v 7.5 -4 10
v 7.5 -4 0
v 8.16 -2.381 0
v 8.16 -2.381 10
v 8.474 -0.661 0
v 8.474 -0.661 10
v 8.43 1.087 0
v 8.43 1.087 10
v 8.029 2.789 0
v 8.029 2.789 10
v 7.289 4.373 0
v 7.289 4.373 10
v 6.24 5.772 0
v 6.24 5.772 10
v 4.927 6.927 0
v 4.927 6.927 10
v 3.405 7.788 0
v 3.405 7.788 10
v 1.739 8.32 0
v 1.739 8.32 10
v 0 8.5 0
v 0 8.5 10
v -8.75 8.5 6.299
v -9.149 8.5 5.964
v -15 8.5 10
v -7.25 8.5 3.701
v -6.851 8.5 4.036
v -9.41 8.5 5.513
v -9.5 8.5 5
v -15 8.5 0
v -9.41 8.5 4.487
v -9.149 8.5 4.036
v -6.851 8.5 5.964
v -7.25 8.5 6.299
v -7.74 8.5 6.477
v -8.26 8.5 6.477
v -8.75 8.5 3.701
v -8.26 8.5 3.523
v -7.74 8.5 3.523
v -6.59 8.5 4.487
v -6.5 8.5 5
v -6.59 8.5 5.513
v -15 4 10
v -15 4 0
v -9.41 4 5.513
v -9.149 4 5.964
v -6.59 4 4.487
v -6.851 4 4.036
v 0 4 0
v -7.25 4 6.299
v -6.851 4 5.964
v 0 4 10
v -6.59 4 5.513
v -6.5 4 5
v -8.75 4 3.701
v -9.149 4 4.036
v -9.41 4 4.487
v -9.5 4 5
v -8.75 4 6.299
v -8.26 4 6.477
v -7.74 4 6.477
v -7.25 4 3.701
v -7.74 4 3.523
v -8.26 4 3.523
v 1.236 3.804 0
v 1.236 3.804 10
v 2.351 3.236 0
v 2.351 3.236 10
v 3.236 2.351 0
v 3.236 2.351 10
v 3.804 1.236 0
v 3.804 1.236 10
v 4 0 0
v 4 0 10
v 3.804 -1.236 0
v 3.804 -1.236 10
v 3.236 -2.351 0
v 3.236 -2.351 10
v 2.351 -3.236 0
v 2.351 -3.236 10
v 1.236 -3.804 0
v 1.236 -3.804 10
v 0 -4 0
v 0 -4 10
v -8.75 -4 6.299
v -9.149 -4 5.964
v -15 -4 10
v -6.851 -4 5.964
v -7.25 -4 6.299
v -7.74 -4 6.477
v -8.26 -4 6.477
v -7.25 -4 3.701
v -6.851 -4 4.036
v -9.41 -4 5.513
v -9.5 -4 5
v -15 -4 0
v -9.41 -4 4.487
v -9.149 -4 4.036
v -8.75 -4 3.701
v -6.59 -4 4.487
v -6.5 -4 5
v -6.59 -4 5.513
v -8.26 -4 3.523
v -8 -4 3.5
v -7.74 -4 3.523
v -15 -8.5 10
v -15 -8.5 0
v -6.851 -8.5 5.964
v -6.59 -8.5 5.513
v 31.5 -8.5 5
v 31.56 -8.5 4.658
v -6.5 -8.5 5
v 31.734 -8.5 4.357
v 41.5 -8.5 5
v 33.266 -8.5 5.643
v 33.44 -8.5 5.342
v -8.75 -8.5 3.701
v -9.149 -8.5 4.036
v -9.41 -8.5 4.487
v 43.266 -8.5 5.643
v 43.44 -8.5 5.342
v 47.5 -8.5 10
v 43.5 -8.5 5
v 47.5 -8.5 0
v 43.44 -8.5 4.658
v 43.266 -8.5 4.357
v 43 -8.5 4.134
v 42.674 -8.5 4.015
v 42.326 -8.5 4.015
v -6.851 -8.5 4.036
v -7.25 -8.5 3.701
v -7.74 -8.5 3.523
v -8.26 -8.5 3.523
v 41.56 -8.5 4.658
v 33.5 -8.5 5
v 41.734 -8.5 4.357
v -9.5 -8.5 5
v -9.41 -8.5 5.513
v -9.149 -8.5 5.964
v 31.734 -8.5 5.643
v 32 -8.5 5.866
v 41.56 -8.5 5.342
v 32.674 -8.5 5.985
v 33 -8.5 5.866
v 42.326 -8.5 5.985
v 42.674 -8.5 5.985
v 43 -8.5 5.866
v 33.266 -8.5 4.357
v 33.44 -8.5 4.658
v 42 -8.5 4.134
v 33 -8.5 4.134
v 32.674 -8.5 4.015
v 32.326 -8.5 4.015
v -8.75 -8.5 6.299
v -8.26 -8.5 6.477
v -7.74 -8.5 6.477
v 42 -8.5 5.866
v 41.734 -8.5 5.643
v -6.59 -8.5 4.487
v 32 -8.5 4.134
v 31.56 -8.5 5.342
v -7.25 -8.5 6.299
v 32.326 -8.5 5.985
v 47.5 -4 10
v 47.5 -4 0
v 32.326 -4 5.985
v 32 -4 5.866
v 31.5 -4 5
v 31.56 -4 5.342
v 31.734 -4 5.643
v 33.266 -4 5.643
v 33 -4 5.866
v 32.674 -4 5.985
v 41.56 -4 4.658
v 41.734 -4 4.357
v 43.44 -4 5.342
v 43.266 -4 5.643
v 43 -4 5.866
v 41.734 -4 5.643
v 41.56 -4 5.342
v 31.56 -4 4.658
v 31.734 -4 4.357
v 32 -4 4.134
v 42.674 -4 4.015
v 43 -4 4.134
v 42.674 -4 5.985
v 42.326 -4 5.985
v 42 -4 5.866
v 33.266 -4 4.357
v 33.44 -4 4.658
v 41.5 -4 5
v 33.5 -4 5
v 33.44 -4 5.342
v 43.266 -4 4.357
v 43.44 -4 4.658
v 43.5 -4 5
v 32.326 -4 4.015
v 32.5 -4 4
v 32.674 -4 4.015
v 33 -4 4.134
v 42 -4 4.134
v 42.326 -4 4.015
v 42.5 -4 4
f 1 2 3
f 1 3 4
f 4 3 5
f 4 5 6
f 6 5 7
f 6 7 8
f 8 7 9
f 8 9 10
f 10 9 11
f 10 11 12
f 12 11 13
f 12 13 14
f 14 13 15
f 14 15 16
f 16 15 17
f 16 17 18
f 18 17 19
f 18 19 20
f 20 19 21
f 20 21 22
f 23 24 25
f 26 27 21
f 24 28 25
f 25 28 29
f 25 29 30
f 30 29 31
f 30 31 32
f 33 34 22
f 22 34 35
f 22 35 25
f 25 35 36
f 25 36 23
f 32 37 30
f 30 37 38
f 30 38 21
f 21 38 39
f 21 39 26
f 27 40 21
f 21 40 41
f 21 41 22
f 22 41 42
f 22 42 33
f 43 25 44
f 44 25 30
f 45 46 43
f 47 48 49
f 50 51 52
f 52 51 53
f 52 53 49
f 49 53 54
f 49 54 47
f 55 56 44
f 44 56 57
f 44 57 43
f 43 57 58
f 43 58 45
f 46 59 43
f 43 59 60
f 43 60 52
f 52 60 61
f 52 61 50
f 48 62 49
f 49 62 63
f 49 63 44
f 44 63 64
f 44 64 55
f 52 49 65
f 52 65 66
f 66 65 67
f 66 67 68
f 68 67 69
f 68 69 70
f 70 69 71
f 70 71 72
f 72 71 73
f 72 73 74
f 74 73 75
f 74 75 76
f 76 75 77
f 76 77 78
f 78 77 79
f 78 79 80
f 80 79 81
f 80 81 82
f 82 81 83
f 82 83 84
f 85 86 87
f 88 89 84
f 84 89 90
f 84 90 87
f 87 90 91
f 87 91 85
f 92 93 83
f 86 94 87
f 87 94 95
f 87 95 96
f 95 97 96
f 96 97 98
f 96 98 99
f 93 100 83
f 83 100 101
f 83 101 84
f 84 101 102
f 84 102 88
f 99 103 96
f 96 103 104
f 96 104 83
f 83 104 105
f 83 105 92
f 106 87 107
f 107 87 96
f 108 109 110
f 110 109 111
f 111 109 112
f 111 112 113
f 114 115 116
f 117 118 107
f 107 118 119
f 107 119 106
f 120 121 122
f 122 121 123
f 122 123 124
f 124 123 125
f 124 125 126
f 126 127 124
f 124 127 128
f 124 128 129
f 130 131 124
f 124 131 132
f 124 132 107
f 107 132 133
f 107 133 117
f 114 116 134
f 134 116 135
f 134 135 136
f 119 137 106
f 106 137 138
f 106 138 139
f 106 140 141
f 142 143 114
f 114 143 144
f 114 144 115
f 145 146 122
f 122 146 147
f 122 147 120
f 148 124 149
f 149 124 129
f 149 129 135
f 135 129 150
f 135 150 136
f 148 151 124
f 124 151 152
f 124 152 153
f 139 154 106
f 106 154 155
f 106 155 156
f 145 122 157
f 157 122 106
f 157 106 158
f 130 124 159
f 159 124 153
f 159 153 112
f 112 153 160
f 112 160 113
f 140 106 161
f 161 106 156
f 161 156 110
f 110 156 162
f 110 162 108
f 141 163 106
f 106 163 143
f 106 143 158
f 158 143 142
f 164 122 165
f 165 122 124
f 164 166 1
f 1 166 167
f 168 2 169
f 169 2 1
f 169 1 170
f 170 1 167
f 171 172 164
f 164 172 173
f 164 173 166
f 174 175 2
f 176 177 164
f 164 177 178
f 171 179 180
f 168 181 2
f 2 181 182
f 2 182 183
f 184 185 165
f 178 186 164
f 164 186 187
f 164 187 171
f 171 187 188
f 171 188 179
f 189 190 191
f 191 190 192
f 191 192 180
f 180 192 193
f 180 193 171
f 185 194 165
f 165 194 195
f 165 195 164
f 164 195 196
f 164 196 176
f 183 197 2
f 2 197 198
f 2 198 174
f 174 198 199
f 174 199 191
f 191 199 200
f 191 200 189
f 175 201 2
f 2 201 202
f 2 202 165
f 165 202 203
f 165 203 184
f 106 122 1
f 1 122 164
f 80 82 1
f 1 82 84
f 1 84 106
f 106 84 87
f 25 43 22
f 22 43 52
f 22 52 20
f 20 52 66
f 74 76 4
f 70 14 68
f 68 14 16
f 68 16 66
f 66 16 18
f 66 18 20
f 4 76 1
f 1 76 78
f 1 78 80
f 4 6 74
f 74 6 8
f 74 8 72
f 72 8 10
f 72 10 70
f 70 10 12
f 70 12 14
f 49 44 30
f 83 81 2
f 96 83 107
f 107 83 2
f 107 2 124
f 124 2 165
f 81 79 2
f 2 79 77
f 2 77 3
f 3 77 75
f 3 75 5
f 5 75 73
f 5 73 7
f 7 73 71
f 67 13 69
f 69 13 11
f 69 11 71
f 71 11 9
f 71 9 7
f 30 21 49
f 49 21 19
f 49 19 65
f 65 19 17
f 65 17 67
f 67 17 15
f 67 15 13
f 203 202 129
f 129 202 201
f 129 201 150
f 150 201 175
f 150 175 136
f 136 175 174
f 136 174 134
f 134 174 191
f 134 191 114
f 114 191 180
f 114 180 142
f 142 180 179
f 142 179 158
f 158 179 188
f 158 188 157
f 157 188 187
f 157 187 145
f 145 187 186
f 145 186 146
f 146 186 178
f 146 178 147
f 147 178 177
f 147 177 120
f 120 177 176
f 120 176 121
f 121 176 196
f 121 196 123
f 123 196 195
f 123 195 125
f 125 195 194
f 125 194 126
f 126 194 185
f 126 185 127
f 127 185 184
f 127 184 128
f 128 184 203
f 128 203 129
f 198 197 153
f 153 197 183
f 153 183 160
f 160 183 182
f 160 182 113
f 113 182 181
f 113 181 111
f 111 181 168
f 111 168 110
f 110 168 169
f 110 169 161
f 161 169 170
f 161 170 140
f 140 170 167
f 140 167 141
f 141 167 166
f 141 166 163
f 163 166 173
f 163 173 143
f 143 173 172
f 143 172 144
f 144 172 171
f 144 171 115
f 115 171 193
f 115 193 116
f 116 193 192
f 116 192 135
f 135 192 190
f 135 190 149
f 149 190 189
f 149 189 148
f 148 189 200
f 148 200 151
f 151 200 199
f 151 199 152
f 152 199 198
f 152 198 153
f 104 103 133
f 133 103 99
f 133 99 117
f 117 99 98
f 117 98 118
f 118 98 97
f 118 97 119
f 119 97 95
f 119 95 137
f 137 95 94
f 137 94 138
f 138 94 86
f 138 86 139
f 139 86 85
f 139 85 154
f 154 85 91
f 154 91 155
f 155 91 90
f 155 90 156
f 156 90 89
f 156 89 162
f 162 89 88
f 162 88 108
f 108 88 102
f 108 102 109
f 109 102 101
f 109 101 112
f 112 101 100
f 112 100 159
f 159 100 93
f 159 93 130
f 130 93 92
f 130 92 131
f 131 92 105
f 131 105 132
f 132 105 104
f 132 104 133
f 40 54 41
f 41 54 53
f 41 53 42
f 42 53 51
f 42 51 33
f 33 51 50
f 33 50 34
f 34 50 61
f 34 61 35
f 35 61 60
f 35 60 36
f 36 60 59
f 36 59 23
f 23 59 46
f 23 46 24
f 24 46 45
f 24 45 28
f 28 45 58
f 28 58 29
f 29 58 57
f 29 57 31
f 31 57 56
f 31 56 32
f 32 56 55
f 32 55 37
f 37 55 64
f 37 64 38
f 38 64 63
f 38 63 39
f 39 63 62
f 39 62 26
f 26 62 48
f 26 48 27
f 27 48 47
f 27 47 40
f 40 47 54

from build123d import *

# Parameters (mm, degrees)
SALIENTE_EXTRUIR1_DEPTH = 10
CROQUIS2_R              = 1
CROQUIS2_R_2            = 1.5
CORTAR_EXTRUIR1_DEPTH   = 52.431993934


with BuildPart() as part:
    # Croquis1 → Saliente-Extruir1 (new body)
    with BuildSketch(Plane.XY):
        with BuildLine():
            Line((0, 4), (-15, 4))
            Line((-15, 4), (-15, 8.5))
            Line((-15, 8.5), (0, 8.5))
            ThreePointArc((0, 8.5), (7.288689869, 4.373213921), (7.5, -4))
            Line((7.5, -4), (47.5, -4))
            Line((47.5, -4), (47.5, -8.5))
            Line((47.5, -8.5), (-15, -8.5))
            Line((-15, -8.5), (-15, -4))
            Line((-15, -4), (0, -4))
            ThreePointArc((0, -4), (4, 0), (0, 4))
        make_face()
    extrude(amount=SALIENTE_EXTRUIR1_DEPTH)

    # Croquis2 → Cortar-Extruir1 (cut, through all)
    with BuildSketch(Plane.XZ.offset(8.5)):
        with Locations((42.5, 5)):
            Circle(CROQUIS2_R)
        with Locations((32.5, 5)):
            Circle(CROQUIS2_R)
        with Locations((-8, 5)):
            Circle(CROQUIS2_R_2)
    extrude(amount=-CORTAR_EXTRUIR1_DEPTH, mode=Mode.SUBTRACT)


solid = part.part
